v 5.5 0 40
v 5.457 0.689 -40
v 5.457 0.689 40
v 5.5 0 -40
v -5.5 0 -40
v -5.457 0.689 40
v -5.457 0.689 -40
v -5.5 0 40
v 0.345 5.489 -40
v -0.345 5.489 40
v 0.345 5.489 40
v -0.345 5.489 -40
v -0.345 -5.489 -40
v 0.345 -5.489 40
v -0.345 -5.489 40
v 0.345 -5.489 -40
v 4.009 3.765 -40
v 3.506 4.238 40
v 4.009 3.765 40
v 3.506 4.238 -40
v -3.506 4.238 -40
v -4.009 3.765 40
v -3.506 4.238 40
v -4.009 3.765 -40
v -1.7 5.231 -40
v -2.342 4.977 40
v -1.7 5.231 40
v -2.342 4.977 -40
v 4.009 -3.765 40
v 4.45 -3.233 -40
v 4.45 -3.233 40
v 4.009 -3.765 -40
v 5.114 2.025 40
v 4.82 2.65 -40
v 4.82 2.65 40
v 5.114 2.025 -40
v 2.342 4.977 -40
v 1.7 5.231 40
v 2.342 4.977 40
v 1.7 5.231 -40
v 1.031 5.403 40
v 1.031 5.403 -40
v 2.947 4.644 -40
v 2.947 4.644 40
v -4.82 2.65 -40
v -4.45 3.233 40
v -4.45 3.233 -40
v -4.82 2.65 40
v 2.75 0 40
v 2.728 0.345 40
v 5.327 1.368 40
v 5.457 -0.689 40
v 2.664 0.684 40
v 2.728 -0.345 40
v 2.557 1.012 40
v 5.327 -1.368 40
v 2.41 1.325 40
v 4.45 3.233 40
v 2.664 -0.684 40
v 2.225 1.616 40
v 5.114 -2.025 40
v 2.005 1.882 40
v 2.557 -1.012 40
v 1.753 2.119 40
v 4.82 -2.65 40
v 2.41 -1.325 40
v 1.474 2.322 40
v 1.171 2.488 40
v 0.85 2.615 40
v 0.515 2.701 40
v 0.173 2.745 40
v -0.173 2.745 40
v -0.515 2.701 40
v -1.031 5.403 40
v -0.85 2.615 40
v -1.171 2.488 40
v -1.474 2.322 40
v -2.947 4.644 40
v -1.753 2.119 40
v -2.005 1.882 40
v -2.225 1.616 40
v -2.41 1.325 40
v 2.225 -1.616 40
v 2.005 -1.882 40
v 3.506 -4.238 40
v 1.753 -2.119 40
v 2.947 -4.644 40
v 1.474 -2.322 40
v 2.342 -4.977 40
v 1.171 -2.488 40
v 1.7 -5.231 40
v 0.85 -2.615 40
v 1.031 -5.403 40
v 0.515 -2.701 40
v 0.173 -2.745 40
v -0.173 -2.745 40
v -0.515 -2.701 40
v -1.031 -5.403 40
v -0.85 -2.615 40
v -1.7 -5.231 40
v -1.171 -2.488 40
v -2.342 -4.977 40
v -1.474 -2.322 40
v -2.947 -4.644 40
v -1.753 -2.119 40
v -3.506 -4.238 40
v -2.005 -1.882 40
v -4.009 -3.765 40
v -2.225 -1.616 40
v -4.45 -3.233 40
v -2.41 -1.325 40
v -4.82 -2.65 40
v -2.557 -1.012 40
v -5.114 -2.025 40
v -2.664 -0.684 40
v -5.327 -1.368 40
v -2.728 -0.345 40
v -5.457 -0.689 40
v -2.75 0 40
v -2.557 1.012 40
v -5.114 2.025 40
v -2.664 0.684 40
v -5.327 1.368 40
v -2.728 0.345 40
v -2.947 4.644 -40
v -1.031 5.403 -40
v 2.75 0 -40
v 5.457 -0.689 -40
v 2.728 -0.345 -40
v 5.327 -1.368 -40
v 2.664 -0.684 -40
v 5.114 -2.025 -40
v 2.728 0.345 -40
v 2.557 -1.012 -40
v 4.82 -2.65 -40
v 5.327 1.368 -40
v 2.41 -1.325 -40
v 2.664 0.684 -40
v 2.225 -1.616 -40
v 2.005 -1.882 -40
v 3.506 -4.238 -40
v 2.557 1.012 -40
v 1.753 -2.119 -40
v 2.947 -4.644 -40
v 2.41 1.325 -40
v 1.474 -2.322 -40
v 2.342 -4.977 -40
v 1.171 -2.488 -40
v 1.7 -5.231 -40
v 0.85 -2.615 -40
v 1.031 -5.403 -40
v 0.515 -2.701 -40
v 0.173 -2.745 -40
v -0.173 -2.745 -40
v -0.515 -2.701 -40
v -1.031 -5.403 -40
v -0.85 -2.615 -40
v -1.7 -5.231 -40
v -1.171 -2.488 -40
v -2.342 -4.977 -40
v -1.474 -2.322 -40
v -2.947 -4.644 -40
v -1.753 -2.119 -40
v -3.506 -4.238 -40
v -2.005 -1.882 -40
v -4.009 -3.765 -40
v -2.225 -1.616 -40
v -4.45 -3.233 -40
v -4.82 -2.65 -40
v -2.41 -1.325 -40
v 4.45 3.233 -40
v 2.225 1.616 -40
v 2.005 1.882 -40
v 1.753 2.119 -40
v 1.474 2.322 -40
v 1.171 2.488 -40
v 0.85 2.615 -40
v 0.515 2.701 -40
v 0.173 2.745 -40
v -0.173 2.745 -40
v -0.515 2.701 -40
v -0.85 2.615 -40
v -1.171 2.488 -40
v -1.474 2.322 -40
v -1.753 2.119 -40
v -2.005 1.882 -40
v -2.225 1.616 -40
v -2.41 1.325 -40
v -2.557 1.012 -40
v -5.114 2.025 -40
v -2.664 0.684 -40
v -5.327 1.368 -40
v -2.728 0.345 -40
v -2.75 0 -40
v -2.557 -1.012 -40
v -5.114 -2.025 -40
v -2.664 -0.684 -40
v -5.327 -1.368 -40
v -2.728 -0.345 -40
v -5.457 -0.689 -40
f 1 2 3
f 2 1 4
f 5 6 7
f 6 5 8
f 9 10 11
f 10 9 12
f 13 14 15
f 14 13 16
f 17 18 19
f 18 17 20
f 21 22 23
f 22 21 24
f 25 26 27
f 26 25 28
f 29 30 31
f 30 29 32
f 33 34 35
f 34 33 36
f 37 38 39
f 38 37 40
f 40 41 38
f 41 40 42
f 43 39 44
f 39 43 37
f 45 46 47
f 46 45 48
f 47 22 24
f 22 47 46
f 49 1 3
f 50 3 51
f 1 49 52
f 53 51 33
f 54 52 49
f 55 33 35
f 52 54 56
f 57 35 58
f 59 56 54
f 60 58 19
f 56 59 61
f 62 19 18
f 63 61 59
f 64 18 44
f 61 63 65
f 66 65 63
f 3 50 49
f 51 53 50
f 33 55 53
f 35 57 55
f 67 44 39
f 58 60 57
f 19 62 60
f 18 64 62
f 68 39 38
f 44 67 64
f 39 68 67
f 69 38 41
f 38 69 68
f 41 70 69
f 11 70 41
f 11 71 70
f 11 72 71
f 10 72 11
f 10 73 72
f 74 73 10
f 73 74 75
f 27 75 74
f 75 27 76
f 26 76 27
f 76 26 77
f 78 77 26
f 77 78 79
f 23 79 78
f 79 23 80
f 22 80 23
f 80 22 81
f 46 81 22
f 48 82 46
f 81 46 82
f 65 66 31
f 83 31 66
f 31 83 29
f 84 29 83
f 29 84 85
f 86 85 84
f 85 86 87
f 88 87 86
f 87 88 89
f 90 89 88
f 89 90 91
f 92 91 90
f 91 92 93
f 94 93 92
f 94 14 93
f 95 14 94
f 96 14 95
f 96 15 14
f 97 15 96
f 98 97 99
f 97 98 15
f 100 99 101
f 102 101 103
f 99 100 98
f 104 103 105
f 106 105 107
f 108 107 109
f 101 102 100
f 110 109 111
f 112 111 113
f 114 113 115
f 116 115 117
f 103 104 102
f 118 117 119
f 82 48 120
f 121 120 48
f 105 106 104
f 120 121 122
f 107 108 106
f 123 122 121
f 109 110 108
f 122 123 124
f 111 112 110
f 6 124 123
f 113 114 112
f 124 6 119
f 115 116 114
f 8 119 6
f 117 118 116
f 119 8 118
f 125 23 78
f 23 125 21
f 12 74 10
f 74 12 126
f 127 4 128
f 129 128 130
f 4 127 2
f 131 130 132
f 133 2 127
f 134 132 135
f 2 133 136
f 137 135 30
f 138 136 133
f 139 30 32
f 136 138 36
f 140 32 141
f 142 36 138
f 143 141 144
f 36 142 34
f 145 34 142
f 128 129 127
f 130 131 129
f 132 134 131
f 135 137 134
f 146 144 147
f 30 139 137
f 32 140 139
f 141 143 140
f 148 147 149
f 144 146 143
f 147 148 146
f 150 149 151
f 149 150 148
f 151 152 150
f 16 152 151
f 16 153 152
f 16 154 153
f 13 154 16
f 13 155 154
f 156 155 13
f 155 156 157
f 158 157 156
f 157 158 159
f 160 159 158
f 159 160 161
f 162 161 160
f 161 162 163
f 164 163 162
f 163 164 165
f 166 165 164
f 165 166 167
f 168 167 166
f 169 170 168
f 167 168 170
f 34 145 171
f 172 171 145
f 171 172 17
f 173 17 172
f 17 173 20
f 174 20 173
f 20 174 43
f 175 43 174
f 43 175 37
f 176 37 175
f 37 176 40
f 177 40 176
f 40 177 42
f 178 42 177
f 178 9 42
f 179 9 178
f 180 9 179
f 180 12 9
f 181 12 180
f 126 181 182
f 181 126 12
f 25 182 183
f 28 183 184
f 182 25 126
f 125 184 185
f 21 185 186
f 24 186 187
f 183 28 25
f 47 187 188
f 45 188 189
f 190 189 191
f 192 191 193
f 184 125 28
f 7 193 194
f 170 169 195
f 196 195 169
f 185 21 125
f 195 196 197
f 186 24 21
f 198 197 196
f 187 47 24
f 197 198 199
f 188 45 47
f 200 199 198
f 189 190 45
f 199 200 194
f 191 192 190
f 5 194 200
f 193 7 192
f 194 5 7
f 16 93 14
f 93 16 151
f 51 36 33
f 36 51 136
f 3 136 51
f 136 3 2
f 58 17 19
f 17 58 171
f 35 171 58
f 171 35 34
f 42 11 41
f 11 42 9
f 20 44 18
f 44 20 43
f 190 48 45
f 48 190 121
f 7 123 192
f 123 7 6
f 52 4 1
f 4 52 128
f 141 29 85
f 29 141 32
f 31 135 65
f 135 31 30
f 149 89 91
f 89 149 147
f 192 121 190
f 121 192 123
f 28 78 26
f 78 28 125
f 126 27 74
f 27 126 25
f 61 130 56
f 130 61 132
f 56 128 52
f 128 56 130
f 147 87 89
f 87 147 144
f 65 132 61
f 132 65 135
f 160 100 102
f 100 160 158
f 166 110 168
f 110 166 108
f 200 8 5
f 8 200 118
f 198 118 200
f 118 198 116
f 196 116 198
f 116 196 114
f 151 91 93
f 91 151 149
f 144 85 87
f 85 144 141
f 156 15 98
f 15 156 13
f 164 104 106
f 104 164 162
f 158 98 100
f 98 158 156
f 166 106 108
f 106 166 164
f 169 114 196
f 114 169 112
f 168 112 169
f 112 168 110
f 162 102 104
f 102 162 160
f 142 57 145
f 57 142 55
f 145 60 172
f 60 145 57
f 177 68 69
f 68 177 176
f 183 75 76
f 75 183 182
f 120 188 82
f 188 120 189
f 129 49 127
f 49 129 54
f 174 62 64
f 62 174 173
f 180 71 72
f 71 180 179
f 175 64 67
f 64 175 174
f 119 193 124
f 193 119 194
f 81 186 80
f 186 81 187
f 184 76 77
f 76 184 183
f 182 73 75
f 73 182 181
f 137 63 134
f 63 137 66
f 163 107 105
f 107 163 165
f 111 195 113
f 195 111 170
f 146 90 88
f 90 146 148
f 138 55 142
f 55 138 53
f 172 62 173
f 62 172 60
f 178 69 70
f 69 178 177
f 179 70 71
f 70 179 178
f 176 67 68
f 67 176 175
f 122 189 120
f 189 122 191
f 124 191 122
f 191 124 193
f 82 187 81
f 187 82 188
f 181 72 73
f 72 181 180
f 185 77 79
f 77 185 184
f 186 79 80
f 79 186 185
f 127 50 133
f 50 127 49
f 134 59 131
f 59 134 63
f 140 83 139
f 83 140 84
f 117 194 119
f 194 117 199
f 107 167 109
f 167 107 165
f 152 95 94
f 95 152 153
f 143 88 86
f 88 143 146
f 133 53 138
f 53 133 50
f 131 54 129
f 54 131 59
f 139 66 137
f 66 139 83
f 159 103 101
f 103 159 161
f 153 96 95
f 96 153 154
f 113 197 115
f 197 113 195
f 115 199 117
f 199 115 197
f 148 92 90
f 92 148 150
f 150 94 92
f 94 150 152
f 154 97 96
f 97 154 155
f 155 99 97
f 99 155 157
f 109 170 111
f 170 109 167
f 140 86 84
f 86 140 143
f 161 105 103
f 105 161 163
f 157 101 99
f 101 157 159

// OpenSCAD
$fn = 50;


difference() {
	union() {
		translate(v = [0, 0, -40.0000000000]) {
			cylinder(h = 80, r = 5.5000000000);
		}
	}
	union() {
		translate(v = [0, 0, -100.0000000000]) {
			cylinder(h = 200, r = 2.7500000000);
		}
	}
}
